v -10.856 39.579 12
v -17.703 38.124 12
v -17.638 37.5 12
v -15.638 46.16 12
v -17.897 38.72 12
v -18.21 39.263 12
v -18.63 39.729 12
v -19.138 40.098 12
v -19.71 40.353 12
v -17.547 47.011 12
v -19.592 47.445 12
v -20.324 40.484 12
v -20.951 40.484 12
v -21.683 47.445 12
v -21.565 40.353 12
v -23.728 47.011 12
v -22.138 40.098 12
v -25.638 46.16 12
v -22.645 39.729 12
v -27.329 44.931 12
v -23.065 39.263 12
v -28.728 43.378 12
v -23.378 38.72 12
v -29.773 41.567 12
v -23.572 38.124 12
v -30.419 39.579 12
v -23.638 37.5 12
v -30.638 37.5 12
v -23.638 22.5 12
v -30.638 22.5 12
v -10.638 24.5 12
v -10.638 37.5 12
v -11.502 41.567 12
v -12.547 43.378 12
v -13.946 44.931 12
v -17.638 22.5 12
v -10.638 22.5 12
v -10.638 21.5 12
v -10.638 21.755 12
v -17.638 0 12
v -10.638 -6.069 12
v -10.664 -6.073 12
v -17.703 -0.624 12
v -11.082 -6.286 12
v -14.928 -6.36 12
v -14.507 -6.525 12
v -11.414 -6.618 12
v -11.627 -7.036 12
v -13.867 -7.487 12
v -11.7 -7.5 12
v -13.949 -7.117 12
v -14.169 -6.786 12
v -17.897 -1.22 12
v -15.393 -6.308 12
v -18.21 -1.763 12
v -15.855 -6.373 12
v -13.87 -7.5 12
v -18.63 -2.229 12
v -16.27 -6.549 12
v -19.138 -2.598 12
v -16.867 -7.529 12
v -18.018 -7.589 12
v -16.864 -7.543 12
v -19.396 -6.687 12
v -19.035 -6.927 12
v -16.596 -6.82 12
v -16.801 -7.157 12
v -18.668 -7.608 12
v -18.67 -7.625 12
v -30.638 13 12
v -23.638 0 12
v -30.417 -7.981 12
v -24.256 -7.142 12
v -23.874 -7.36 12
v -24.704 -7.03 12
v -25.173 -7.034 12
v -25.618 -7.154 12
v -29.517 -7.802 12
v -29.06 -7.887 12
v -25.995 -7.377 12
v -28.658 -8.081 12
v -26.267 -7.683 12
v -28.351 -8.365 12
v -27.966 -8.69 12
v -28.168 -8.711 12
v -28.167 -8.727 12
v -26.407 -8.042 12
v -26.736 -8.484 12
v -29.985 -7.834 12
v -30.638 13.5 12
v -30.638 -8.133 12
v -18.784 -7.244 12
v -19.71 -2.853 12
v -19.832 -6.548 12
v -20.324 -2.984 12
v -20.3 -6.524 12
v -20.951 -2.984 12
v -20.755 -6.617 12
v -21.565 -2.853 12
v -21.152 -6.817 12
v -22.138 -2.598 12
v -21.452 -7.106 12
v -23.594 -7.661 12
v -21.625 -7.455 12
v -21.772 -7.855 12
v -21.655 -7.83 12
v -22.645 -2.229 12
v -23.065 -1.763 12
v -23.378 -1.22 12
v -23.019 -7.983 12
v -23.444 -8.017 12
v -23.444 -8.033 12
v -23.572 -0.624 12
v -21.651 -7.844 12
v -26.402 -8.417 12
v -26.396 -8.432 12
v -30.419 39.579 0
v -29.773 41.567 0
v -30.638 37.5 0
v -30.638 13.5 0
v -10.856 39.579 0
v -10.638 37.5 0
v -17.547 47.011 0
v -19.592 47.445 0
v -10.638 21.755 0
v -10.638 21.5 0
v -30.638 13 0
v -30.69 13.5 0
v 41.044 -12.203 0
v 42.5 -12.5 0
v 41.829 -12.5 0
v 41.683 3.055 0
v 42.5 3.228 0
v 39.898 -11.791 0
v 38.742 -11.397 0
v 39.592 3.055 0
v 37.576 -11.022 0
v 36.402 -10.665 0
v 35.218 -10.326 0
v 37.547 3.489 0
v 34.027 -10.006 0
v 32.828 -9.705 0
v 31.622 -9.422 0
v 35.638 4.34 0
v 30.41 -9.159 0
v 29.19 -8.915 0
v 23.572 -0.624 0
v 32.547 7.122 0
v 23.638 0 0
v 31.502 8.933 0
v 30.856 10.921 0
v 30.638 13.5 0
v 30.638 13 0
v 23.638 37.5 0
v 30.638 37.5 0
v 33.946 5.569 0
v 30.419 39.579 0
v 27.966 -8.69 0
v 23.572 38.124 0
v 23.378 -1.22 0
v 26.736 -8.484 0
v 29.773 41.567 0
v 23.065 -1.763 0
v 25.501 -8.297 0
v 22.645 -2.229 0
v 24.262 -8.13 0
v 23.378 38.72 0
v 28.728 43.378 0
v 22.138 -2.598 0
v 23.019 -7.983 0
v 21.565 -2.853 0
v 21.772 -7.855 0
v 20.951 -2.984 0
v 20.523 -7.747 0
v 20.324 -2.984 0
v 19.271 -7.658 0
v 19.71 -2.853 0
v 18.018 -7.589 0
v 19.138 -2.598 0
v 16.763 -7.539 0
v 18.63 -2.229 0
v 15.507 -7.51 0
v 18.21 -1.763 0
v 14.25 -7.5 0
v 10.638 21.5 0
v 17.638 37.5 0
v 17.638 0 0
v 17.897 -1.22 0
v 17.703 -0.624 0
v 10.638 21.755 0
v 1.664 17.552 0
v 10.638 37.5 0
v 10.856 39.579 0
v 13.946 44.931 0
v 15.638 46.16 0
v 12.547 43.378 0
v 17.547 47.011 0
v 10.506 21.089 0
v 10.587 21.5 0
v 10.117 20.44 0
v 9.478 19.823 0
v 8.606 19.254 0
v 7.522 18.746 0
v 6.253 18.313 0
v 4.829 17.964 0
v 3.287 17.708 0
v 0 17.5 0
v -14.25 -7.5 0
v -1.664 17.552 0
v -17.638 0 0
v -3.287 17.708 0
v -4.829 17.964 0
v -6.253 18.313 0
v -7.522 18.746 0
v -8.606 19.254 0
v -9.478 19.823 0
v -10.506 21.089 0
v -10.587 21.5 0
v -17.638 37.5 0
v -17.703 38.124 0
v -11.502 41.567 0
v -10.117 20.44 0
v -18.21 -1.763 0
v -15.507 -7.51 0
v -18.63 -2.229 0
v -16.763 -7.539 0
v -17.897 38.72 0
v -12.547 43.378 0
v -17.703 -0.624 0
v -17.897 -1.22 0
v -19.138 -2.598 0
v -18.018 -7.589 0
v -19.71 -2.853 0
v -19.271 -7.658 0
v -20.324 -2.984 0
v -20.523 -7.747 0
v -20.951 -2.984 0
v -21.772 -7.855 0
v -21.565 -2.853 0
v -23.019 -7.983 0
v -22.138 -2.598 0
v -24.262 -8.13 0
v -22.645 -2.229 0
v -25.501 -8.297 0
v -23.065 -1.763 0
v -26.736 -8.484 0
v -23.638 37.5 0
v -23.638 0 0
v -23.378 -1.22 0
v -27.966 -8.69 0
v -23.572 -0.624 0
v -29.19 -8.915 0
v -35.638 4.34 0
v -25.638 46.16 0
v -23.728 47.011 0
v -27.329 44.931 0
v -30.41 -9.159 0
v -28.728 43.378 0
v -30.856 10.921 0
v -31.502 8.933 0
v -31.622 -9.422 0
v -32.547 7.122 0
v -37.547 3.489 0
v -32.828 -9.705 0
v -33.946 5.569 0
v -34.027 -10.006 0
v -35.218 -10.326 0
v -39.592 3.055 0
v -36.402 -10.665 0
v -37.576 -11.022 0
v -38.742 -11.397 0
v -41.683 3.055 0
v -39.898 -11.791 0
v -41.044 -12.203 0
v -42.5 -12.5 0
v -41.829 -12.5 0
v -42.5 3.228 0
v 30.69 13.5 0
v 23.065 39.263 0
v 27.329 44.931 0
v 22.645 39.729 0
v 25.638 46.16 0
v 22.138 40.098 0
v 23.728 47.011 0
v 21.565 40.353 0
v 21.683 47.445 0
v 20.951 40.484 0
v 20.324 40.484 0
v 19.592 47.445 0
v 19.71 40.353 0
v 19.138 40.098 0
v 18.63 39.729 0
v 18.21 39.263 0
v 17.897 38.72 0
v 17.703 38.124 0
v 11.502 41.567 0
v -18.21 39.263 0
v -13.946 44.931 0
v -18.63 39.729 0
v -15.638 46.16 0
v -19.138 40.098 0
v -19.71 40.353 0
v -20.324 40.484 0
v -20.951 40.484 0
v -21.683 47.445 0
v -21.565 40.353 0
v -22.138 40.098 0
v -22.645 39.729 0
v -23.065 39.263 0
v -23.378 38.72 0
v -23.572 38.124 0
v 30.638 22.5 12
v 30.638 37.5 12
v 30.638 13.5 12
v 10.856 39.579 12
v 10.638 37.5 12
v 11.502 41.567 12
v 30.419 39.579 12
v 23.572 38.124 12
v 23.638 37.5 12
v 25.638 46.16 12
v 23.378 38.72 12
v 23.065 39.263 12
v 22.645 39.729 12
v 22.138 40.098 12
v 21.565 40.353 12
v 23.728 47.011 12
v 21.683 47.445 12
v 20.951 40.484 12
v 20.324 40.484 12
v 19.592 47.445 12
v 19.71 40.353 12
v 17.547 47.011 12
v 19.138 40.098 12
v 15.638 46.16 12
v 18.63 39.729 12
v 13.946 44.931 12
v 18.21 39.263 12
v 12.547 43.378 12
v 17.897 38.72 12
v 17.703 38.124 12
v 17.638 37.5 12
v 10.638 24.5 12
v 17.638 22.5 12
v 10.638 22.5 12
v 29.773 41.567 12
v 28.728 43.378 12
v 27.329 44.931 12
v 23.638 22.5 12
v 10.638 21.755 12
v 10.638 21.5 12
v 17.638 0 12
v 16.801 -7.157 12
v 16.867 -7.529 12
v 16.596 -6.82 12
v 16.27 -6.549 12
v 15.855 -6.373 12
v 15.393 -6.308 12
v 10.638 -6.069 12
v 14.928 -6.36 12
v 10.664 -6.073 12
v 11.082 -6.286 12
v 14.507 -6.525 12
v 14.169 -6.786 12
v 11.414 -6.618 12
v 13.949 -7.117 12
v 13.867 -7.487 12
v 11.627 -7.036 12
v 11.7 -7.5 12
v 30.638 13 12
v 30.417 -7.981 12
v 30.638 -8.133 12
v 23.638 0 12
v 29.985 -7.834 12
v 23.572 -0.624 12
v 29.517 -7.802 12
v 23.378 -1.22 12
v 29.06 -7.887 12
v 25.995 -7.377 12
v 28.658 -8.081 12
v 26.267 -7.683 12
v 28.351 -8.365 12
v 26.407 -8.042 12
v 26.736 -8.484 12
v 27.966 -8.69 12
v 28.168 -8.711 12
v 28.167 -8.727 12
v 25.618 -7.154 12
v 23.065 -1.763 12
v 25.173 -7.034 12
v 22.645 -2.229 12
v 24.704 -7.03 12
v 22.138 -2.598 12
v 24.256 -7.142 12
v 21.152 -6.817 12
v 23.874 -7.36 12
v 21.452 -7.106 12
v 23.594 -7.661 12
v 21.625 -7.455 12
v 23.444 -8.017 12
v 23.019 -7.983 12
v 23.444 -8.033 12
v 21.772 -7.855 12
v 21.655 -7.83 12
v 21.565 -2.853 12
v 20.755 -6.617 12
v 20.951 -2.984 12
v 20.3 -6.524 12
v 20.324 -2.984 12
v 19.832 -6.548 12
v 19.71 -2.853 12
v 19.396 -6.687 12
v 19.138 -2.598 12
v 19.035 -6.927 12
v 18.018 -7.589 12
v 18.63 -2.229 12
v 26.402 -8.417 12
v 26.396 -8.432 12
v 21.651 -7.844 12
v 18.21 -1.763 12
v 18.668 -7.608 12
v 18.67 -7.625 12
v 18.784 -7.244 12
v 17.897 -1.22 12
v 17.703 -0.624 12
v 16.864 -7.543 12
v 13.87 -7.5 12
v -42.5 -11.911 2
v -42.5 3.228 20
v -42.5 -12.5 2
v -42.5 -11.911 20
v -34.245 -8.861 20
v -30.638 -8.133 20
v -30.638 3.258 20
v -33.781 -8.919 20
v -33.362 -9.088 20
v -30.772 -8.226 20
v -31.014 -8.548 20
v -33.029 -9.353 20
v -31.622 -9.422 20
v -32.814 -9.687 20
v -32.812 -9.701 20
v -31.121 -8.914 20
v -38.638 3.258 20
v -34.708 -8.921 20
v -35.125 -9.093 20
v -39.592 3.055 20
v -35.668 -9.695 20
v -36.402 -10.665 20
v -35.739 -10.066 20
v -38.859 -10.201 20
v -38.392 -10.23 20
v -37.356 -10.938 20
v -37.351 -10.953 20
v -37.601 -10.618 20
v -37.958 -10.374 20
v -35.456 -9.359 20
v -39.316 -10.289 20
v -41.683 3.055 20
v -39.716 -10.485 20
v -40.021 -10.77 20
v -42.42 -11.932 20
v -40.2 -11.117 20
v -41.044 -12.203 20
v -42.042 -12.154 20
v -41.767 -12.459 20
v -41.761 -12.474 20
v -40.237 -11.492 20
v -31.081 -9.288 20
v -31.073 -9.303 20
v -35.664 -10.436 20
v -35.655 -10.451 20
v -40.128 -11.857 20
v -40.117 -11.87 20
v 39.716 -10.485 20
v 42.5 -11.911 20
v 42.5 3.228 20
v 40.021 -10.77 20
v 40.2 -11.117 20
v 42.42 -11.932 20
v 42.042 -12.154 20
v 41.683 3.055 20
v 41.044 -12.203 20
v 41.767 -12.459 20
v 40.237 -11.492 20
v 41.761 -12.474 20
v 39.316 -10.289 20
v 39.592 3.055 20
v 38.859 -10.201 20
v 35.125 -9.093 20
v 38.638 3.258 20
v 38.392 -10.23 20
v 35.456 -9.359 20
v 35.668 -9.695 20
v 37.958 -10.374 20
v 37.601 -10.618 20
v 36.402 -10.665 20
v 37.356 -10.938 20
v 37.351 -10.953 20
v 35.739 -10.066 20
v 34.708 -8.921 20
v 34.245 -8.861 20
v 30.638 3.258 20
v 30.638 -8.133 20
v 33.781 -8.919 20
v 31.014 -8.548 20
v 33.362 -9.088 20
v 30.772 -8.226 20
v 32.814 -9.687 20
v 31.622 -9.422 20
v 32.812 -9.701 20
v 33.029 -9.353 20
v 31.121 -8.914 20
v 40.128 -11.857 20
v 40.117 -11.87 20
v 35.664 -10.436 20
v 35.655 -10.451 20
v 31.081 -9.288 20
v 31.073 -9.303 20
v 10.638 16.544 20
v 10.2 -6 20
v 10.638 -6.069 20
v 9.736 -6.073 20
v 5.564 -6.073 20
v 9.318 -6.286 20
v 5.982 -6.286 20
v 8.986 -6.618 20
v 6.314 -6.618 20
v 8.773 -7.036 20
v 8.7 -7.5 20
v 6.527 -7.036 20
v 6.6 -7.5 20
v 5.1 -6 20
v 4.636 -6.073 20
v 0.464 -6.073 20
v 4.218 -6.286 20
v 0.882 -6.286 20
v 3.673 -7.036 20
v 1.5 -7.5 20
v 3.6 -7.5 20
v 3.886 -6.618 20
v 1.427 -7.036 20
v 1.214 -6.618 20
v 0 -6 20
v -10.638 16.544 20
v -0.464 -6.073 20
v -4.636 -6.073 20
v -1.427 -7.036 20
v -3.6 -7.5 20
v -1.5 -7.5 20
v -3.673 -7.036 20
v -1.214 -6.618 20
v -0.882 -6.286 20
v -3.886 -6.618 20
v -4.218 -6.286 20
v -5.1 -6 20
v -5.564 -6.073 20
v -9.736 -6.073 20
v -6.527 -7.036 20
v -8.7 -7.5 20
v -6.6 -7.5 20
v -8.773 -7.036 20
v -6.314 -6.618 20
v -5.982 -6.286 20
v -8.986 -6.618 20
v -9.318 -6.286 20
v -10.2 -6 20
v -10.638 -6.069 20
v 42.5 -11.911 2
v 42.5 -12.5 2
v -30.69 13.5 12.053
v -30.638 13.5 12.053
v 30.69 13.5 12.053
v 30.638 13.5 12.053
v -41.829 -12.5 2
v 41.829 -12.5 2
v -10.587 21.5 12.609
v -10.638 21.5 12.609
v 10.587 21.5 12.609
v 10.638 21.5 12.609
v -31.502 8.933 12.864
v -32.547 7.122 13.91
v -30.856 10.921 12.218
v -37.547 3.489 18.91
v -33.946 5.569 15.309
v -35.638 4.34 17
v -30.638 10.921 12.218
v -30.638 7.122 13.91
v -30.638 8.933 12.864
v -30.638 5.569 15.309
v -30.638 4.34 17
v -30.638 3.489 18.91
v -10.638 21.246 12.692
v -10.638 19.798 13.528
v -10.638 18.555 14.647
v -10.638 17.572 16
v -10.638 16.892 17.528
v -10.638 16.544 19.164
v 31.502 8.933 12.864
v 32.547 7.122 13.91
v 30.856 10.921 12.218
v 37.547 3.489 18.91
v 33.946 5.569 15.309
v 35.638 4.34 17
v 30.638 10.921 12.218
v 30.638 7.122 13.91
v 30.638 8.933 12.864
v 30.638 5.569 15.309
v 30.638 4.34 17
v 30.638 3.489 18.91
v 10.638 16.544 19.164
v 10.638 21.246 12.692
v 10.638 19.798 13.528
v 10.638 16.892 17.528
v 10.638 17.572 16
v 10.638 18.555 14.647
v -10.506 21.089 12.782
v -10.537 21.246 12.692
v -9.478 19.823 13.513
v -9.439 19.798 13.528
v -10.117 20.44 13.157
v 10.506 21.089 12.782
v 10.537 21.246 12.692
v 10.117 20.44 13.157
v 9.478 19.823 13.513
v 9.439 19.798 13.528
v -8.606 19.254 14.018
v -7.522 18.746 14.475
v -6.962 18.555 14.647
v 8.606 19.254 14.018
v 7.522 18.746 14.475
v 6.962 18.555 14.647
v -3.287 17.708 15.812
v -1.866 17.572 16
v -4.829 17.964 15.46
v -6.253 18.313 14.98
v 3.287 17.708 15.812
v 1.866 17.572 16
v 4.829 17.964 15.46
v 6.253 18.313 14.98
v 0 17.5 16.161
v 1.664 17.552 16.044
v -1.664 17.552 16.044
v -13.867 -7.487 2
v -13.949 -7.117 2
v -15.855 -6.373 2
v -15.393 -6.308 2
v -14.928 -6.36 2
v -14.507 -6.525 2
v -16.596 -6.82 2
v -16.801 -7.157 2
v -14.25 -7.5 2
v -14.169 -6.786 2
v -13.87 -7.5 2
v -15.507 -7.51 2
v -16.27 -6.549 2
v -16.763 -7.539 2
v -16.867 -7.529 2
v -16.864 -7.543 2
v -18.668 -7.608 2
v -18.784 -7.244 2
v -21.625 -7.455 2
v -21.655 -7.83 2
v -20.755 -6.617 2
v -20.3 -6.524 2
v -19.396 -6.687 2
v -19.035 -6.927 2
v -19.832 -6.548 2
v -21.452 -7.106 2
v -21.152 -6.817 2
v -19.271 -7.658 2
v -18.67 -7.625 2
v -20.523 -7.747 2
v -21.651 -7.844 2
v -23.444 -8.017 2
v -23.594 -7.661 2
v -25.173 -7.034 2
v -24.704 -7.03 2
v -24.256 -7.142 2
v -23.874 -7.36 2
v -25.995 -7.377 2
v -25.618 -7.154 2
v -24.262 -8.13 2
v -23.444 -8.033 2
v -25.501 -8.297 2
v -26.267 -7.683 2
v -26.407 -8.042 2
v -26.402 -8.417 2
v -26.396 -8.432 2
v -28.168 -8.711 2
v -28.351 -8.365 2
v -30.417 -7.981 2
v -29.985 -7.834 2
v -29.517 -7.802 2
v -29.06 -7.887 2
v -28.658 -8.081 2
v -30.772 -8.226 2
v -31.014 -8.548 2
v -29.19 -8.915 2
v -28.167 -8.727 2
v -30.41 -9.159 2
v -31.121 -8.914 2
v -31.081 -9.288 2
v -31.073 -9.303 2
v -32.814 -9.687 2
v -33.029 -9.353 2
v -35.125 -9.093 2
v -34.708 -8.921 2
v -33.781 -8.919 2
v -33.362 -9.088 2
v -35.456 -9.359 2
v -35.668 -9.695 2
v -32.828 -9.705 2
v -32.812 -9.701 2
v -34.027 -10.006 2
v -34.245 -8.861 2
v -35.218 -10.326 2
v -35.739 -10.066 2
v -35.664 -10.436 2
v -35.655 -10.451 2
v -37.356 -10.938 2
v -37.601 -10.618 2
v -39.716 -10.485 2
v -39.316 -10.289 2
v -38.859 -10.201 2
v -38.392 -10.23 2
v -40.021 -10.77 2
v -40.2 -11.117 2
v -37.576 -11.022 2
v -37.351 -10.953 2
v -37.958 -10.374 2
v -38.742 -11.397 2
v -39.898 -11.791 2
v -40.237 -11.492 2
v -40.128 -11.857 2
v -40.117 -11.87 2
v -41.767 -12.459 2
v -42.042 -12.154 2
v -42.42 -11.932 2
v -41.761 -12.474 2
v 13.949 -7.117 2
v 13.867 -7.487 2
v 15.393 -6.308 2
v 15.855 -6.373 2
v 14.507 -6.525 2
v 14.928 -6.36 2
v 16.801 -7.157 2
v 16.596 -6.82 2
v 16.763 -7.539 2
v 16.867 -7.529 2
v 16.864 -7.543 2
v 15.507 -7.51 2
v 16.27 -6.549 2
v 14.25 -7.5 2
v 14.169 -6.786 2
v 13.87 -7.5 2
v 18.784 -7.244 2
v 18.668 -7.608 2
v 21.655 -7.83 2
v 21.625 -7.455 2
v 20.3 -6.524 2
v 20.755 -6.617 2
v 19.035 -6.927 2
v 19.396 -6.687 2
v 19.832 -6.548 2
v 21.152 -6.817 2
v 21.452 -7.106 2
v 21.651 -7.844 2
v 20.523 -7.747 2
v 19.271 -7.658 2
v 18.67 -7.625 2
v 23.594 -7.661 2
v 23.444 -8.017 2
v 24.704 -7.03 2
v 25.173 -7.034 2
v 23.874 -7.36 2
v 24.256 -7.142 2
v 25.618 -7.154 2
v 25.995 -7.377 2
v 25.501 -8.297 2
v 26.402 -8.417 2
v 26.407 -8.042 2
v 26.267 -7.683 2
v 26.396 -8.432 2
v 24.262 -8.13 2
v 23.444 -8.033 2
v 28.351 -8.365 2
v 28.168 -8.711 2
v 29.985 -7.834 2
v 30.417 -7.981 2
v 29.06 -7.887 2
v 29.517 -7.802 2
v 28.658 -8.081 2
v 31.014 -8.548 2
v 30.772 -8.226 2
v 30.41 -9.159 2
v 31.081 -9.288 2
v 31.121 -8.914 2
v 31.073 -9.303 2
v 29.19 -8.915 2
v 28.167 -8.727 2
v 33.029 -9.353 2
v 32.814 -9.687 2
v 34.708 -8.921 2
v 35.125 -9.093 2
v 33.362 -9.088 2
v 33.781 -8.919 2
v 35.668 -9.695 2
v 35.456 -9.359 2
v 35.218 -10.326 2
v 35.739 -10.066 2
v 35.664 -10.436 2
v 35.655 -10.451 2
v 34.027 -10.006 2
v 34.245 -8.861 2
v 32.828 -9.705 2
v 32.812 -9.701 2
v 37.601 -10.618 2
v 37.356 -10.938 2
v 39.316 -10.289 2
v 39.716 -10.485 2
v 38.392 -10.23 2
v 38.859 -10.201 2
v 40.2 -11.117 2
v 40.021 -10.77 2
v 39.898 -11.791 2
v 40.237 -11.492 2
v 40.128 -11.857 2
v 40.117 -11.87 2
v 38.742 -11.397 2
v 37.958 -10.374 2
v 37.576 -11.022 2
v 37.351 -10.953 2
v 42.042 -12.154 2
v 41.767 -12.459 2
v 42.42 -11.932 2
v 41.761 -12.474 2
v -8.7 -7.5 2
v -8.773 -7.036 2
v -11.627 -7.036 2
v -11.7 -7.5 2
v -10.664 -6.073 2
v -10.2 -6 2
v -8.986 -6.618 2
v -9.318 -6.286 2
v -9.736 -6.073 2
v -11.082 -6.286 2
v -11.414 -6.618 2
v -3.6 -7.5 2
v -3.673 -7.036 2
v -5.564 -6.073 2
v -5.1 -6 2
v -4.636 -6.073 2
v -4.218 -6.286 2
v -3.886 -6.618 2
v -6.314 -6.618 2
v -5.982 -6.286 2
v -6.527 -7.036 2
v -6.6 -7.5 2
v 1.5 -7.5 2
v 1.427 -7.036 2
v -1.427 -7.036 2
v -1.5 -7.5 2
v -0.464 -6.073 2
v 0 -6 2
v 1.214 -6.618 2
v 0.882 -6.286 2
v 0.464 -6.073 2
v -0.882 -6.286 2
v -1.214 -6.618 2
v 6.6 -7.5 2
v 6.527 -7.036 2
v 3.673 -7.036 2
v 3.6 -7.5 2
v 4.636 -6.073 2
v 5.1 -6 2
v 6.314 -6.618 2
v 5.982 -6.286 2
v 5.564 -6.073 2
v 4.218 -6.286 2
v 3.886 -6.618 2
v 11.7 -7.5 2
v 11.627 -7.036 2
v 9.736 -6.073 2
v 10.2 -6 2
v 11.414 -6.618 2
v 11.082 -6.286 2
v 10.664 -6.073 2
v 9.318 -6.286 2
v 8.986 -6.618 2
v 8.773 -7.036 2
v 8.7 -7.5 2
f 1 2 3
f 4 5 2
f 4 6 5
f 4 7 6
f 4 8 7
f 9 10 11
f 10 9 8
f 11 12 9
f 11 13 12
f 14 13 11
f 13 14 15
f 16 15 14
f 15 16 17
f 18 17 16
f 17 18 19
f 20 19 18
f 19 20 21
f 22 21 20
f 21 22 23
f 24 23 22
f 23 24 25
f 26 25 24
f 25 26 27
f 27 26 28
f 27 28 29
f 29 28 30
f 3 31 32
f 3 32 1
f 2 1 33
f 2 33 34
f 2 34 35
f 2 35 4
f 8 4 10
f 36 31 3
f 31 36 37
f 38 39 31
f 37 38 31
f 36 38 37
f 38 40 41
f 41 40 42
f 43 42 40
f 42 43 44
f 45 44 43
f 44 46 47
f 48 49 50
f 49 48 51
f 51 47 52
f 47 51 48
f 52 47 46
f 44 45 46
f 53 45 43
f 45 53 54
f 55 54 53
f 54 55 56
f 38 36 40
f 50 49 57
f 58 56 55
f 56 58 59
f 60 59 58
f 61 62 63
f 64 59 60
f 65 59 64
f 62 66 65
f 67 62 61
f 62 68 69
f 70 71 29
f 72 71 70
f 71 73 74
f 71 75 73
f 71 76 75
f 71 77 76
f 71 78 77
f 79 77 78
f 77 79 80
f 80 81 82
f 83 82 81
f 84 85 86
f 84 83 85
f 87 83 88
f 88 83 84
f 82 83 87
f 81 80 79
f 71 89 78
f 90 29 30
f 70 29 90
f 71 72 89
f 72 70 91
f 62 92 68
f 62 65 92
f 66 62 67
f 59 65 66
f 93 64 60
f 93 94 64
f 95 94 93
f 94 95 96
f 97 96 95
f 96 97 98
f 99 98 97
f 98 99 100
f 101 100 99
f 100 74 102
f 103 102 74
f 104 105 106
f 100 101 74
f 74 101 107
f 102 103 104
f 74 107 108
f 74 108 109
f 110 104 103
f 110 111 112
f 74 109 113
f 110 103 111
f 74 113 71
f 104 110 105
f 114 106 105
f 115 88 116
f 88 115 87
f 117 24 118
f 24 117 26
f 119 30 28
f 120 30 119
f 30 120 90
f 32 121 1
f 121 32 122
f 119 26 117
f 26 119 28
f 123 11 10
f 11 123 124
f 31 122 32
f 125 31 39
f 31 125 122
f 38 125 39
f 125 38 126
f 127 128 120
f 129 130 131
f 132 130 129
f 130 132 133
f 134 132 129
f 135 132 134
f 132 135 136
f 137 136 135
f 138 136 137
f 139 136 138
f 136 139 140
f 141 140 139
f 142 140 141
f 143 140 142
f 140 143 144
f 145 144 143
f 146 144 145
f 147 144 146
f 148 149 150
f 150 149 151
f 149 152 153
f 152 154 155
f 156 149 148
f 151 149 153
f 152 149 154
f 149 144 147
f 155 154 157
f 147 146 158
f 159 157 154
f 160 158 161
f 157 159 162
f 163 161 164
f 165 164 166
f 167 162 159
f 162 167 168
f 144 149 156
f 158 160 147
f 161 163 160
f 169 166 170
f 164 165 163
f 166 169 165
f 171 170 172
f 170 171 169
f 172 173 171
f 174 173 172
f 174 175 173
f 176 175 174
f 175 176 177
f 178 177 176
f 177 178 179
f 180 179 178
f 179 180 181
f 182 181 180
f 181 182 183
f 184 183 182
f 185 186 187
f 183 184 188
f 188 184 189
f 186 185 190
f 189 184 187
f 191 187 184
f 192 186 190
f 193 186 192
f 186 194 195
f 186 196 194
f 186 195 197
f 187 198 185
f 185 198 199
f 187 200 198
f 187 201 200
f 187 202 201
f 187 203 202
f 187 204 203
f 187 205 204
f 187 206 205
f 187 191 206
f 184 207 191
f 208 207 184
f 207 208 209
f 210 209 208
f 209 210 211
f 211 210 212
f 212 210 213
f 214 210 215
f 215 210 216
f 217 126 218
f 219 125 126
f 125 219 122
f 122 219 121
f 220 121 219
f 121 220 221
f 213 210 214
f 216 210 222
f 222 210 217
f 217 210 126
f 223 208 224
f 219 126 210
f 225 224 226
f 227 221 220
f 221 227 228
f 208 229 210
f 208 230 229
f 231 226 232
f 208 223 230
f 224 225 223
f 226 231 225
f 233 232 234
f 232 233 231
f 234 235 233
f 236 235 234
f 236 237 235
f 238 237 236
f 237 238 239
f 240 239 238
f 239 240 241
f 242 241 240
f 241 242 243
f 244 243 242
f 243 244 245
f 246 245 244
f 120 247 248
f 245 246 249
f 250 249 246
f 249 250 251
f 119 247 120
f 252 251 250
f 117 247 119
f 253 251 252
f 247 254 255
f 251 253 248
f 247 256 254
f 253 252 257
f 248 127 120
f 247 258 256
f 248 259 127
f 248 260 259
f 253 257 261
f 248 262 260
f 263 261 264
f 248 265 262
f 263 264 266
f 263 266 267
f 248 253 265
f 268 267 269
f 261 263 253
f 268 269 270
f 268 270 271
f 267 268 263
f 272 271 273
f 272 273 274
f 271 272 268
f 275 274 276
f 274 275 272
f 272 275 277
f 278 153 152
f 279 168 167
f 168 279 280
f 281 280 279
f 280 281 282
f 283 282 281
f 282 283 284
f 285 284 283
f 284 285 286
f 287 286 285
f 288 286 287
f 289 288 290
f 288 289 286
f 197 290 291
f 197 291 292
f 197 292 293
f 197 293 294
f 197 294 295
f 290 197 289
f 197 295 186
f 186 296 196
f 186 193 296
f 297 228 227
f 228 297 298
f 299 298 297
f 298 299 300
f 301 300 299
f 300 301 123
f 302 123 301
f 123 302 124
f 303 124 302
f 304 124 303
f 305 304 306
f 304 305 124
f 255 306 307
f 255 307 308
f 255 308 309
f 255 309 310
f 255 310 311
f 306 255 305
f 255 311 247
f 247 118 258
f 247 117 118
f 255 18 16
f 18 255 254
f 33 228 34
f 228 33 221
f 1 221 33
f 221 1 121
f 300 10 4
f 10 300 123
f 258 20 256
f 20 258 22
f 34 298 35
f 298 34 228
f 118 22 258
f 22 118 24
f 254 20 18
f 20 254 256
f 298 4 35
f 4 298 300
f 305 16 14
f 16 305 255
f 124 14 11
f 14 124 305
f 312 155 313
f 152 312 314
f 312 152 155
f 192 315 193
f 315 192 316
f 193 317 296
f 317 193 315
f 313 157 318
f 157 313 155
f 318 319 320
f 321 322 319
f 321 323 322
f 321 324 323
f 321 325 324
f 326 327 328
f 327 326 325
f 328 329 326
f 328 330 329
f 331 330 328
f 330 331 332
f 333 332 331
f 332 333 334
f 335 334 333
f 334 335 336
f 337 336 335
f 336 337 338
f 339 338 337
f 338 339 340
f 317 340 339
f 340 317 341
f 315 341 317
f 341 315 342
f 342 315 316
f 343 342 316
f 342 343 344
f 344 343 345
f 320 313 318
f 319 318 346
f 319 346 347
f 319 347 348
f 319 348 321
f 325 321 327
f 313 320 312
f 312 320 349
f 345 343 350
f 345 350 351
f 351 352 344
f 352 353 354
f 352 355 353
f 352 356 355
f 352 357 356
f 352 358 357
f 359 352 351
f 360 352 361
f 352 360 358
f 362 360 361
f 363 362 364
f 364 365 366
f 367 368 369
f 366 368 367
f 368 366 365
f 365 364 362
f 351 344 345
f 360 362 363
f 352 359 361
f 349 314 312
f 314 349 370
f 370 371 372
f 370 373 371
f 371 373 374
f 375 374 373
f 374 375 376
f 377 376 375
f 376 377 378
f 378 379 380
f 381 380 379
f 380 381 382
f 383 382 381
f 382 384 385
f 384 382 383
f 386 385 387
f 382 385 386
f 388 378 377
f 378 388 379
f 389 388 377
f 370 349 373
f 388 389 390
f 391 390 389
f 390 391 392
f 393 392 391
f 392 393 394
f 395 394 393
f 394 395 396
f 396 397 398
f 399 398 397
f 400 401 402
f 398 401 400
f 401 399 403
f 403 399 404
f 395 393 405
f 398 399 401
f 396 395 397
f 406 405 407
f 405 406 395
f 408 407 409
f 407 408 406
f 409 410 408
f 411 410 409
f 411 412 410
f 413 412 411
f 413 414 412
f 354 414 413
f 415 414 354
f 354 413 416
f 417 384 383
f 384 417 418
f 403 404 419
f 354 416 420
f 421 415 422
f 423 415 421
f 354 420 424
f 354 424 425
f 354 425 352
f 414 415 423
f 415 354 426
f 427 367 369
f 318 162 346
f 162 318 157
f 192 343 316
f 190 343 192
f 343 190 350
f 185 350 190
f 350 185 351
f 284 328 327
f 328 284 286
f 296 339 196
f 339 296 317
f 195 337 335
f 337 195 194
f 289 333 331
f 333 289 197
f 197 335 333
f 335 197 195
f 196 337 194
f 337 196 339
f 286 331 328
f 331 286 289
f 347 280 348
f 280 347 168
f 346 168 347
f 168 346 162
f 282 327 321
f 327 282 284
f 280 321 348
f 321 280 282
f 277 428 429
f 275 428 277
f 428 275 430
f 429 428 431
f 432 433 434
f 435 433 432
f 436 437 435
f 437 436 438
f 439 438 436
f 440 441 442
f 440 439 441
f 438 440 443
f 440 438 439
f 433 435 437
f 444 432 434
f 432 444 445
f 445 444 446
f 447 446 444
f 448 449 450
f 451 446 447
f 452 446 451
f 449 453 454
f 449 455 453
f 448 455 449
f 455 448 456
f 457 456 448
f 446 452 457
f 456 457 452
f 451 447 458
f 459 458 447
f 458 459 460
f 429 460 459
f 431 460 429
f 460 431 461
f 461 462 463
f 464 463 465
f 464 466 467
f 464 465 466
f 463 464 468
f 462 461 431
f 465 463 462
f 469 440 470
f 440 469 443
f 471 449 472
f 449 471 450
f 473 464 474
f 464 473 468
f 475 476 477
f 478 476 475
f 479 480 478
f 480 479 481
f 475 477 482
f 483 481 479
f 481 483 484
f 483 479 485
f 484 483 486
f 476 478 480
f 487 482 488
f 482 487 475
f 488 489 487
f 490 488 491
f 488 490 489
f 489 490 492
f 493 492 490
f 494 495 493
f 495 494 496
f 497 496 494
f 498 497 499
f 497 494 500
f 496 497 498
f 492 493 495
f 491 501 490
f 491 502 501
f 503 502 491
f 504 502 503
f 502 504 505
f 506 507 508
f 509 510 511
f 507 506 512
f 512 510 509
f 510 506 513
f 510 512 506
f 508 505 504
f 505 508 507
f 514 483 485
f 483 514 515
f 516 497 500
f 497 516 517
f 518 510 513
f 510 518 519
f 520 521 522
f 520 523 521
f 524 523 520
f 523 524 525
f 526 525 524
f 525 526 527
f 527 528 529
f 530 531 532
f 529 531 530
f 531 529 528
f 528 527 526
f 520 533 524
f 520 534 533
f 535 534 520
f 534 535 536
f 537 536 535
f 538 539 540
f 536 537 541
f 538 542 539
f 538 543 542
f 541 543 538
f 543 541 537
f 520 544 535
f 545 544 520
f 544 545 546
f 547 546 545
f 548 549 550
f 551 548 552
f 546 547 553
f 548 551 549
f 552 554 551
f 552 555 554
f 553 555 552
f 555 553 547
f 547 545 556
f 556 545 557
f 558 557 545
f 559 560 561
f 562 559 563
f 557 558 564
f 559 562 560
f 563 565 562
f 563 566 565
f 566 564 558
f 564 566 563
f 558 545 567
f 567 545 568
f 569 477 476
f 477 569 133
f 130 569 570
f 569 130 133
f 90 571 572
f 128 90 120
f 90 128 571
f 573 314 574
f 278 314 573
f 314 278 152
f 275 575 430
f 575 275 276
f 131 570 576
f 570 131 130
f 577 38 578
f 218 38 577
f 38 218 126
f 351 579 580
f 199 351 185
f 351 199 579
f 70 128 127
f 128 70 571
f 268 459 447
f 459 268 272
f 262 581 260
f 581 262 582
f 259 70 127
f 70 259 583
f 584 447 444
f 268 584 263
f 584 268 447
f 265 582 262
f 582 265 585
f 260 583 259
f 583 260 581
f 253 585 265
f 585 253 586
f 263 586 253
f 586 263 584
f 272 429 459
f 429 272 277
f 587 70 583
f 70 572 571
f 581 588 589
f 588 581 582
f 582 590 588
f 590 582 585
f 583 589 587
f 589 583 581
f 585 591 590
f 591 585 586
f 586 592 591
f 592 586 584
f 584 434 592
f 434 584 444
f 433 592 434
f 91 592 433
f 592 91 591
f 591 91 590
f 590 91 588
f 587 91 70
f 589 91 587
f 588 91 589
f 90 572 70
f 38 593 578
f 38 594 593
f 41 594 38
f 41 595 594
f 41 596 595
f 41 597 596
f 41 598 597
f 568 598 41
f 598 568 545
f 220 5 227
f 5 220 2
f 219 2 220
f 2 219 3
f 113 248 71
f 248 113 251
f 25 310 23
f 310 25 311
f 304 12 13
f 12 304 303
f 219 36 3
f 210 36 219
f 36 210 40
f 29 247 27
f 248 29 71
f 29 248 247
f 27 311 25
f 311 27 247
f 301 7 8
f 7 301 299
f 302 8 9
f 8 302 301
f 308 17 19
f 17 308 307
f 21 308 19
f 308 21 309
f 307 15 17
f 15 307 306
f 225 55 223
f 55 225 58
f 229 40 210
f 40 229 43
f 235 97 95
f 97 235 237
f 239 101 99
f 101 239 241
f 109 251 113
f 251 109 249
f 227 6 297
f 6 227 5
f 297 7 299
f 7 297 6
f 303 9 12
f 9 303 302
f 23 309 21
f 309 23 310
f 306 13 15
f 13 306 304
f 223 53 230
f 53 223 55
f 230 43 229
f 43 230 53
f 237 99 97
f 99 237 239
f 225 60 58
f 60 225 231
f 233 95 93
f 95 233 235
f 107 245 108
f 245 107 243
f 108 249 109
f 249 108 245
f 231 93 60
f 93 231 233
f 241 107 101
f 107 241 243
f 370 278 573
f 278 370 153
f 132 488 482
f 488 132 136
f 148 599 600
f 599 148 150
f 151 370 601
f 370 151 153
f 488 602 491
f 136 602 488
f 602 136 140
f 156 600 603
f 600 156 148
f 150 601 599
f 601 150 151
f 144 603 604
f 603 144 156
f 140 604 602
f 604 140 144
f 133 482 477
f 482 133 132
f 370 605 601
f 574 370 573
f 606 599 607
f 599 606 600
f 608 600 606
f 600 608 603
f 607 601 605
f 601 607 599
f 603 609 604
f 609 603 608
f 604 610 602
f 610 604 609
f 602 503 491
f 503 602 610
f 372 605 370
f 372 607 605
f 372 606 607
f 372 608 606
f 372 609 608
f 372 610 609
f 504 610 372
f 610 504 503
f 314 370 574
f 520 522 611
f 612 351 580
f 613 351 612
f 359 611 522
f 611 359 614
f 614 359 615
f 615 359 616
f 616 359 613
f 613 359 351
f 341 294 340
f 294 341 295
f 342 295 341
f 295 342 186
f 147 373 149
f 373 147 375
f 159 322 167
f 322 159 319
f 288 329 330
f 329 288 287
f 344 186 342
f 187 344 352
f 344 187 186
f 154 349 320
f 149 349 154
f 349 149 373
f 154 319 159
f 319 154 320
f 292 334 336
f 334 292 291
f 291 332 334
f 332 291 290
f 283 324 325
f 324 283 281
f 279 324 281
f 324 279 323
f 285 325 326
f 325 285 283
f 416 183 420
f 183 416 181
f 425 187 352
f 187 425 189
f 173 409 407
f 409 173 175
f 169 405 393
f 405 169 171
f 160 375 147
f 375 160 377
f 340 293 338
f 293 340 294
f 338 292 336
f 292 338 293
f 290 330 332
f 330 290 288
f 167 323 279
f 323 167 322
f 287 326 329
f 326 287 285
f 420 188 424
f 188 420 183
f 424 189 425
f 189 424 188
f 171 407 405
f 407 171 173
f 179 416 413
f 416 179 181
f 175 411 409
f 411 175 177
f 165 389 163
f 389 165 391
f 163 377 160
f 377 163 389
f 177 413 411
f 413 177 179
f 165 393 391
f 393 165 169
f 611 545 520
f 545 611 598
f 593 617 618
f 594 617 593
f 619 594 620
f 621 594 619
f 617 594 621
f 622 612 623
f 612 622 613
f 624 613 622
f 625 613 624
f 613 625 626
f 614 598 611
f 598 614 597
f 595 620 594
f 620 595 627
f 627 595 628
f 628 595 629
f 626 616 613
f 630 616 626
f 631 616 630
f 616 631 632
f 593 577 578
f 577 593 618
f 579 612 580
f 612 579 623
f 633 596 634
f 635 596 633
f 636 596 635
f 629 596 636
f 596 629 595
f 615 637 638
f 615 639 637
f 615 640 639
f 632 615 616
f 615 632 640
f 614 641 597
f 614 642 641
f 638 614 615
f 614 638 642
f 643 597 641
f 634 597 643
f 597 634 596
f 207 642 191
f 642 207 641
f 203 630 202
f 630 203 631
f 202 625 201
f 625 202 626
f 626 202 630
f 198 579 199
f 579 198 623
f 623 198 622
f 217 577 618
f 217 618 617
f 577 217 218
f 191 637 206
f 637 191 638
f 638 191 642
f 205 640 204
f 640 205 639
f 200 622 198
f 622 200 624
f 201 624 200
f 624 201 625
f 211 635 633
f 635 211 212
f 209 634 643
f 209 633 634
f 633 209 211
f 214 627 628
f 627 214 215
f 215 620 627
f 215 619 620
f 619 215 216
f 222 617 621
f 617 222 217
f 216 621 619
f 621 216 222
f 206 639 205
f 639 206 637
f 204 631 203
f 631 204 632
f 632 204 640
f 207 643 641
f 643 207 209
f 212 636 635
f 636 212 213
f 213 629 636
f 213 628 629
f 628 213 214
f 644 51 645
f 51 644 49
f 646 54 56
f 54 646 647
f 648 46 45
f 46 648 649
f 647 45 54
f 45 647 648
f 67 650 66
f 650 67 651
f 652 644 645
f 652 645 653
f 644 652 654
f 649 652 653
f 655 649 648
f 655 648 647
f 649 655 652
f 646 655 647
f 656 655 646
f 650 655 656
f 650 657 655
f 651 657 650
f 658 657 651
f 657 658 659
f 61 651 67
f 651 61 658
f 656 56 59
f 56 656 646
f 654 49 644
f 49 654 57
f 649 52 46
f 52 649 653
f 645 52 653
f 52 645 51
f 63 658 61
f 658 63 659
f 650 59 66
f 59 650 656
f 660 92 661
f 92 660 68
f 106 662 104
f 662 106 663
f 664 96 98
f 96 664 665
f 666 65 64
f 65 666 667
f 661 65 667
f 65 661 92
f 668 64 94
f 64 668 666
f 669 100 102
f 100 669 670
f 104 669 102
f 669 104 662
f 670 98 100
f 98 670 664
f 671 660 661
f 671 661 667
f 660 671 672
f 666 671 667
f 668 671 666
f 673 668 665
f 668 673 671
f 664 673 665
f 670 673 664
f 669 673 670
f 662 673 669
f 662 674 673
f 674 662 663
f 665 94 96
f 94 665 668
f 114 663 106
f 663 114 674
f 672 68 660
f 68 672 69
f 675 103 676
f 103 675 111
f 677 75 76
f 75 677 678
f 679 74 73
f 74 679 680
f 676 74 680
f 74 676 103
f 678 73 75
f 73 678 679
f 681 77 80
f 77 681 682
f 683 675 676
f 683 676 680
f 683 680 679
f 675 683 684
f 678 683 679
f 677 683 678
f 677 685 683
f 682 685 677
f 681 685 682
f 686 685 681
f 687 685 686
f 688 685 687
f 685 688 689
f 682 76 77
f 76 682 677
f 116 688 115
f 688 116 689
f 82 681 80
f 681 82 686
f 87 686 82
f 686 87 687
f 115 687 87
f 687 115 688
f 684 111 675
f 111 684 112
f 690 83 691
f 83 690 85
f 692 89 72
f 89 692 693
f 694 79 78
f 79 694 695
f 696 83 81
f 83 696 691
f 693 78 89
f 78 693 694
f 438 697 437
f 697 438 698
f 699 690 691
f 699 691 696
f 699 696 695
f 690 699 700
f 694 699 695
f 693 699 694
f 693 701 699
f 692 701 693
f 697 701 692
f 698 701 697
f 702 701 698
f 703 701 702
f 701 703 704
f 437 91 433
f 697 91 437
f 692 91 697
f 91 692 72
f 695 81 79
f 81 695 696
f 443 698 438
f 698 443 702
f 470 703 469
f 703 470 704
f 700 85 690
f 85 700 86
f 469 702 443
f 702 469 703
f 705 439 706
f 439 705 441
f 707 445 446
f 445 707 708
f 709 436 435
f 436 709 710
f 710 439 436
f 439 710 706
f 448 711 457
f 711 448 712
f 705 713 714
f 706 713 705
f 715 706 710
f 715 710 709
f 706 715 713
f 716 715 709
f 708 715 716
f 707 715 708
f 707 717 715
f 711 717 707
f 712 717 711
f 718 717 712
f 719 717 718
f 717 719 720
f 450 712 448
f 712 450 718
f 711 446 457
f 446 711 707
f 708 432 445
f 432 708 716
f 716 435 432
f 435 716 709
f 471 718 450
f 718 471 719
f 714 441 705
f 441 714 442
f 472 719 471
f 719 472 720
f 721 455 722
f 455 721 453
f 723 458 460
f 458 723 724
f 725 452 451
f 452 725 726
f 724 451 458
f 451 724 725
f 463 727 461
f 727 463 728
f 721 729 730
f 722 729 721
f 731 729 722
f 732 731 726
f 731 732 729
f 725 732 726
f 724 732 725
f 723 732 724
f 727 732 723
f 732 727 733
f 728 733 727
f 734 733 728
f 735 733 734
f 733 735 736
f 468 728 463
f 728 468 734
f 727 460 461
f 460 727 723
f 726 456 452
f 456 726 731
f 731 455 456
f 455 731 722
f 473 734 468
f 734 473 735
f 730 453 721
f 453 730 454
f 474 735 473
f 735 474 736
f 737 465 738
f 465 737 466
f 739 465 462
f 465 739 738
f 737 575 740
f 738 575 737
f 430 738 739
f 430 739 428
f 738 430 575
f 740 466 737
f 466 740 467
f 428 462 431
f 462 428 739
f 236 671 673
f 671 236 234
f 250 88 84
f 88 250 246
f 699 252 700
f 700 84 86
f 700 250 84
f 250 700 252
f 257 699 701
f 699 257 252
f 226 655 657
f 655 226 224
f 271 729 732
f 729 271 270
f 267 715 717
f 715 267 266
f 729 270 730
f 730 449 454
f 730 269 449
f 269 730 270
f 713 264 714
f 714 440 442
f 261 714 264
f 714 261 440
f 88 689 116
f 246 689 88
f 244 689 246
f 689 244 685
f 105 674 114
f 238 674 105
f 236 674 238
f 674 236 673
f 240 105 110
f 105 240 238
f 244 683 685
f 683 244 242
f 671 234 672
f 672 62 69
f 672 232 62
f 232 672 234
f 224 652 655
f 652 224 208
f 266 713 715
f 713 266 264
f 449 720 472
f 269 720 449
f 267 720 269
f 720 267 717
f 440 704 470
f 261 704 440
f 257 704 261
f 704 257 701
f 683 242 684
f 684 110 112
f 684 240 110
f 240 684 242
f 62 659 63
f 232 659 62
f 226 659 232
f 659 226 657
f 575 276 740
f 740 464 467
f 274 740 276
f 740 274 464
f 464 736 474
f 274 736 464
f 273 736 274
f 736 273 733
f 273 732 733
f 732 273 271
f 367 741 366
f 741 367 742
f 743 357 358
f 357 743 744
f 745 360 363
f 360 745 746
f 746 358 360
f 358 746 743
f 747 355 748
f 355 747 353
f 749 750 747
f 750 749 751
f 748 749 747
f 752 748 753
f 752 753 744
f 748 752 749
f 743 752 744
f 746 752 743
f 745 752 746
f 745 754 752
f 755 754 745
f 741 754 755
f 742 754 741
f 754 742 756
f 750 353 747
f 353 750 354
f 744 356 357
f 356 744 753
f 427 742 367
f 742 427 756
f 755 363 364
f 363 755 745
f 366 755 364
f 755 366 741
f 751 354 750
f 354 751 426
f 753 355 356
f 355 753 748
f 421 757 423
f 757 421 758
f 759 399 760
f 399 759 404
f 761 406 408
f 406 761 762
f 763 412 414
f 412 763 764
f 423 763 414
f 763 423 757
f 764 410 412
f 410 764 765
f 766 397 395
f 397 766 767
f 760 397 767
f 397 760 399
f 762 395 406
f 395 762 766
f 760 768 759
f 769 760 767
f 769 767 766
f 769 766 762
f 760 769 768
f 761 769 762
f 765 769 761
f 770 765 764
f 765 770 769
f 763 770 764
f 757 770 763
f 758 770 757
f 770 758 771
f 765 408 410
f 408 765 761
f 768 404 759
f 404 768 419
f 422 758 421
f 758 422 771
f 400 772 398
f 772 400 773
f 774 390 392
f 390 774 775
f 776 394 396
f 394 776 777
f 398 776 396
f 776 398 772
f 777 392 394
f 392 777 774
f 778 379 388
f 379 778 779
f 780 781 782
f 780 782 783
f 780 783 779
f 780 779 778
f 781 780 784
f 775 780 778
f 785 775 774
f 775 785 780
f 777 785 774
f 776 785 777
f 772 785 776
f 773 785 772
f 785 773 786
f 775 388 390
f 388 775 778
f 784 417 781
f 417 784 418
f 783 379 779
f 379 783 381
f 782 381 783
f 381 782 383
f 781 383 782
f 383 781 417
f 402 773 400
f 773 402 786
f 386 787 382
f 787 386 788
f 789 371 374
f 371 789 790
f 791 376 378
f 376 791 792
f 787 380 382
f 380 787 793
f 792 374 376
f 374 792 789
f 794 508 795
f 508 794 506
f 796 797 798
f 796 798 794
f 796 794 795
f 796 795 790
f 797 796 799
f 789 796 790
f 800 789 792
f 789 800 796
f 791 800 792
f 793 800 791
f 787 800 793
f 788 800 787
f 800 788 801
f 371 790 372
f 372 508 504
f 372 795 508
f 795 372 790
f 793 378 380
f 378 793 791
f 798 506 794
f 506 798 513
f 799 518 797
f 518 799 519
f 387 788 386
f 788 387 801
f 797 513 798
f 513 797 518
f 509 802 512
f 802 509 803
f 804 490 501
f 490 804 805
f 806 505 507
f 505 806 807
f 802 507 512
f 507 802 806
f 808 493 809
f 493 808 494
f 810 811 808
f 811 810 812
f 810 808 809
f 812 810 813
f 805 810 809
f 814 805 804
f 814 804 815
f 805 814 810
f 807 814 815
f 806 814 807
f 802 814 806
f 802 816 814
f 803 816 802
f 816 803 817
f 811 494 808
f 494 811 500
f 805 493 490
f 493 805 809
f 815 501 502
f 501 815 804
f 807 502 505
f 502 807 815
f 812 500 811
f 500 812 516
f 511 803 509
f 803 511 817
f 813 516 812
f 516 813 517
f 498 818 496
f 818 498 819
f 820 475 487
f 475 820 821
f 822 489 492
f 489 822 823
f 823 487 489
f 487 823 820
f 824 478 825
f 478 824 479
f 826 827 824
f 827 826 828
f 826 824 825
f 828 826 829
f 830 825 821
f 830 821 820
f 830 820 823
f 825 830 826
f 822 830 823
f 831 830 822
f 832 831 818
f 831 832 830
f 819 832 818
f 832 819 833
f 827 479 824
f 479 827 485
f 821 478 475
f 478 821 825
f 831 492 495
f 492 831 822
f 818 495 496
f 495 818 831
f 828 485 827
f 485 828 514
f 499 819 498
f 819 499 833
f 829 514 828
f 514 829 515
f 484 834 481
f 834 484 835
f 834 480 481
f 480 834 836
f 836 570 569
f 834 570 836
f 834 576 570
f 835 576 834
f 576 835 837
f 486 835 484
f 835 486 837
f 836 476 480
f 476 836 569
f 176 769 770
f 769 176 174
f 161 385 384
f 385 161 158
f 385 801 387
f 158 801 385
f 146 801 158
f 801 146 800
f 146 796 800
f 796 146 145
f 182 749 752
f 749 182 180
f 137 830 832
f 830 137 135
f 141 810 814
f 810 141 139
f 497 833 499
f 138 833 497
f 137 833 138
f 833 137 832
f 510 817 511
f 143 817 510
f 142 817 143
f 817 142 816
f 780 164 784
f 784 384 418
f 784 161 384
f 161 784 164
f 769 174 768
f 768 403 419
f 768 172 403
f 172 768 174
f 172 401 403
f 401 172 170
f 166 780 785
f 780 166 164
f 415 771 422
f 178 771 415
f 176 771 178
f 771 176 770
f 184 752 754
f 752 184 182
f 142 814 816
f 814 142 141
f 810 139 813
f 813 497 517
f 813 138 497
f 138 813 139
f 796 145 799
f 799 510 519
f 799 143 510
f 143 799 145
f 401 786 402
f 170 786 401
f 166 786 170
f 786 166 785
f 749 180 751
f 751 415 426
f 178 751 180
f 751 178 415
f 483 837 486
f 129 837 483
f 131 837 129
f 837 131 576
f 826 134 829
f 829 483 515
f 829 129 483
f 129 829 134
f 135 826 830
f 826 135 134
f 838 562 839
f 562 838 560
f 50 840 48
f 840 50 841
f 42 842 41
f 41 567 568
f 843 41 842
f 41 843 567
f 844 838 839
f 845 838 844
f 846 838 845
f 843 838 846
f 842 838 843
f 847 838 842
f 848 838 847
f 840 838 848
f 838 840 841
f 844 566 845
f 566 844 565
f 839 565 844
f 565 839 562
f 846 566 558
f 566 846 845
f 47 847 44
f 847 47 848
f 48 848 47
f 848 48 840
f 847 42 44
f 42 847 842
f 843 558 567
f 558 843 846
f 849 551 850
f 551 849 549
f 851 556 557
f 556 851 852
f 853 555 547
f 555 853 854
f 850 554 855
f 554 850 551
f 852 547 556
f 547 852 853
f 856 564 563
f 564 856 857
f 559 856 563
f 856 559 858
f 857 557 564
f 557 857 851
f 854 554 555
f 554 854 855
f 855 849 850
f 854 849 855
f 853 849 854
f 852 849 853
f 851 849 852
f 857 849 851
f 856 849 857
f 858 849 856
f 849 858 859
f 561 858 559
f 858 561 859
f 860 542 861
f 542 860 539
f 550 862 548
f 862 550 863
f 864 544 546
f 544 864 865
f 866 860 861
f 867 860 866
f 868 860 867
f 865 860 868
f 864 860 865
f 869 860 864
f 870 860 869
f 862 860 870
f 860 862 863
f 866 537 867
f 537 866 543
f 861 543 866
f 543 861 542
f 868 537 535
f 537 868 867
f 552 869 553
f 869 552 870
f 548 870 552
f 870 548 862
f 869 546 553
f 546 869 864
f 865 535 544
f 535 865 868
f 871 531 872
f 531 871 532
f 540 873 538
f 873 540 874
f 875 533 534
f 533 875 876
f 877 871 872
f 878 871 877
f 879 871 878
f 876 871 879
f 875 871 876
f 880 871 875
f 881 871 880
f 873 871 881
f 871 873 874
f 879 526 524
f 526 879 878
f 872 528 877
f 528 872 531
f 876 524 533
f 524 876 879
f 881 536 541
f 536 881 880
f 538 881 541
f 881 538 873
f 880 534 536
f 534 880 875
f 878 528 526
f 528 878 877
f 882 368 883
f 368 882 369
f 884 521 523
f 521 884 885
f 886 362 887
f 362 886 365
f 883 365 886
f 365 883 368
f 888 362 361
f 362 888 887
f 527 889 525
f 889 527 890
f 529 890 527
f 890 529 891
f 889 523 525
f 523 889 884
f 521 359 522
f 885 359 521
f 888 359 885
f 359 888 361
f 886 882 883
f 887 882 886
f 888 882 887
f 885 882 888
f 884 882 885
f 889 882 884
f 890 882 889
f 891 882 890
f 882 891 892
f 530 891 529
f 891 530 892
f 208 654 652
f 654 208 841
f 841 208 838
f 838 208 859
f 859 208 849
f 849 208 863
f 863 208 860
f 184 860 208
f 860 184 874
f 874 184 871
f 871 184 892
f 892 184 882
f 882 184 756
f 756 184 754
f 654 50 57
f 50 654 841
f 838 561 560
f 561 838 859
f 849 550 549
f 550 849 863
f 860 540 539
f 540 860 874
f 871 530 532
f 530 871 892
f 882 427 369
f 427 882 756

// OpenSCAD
module csrc() translate([0,0,0])
scale(1)rotate([0,0,0])translate([-2.5,10+37.5,0])import(file="concave_footstop.stl",convexity=10);

mt=1.625*25.4;
//#for(m=[-2,2]) translate([mt/m,0]) cylinder(d=6,h=20,$fn=35);


deep1=20;
deep3=12;

H1=85;
Z1f=12.5;
Z1b1=3;
Z1b=13.5;

H2=28.5;
Z2f=7.5;
Z2b1=16.5;
Z2b=21.5;

len3=37.5;
R3=10;
module base() {
    translate([-H1/2,-Z1f,0]) cube([H1,Z1f+Z1b,deep1]);
    translate([-H2/2,-Z2f,0]) cube([H2,Z2f+Z2b,deep1]);
    for(k=[0,1])mirror([k,0])
    translate([-mt/2,0,0]) hull() {
        cylinder(r=R3,h=deep3);
        translate([0,len3,0])cylinder(r=R3,h=deep3);
    }
}

Rb1=10;
Rb2=8;
Db2=mt-R3*2;
Sb2=0.4;

module bevel() {
    for(k=[0,1])mirror([k,0]) translate([-mt/2,0]) {
        translate([-Rb1-R3,Rb1+Z1b1,-1]) // bevel xy
            cylinder(r=Rb1,h=deep1+2);
        translate([0,Rb1+Z1b1,Rb1+deep3]) // bevel z
            rotate([0,-90,0])cylinder(r=Rb1,h=H1/2-mt/2+1);
        translate([-R3,-Z1f-1,deep3]) // bolt path
            cube([R3*2,Z1f+Z2b+2,deep1-deep3+1]);
        hull() for(y=[0,len3])  // bolt slot
            translate([0,y,-1]) cylinder(d=6,h=deep3+2,$fn=30);
    }
    translate([0,Z2b1+Rb2,Rb2+deep3]) // bevel z #2
        rotate([0,90,0])cylinder(r=Rb2,h=H2+1,center=true,$fn=30);
    translate([0,1+Z2b1+Db2/2*Sb2,-1]) // bevel xy #2
        scale([1,Sb2])cylinder(d=Db2,h=deep1+1,$fn=40);
}

Rc=64; Sc=0.8;
module concave() {
    for(k=[0,1])mirror([k,0])
    translate([-H2/2,-Z2f-Rc*Sc,-1])scale([1,Sc]) {
        cylinder(r=Rc,h=deep1+2,$fn=320);
        for(a=[0:6]) rotate([0,0,a*4.3+1])
            translate([0,Rc,2+1]) cylinder(d=3,h=deep1,$fn=20);
    }
    translate([-H2/2,-Z1f-1,-1])
        cube([H2,Z1f-Z2f+1,deep1+2]);
    for(a=[-2:2]) translate([a*5.1,-Z2f,2])
        cylinder(d=3,h=deep1,$fn=20);

}

difference() {
    base();
    bevel();
    concave();
}

//#csrc();
